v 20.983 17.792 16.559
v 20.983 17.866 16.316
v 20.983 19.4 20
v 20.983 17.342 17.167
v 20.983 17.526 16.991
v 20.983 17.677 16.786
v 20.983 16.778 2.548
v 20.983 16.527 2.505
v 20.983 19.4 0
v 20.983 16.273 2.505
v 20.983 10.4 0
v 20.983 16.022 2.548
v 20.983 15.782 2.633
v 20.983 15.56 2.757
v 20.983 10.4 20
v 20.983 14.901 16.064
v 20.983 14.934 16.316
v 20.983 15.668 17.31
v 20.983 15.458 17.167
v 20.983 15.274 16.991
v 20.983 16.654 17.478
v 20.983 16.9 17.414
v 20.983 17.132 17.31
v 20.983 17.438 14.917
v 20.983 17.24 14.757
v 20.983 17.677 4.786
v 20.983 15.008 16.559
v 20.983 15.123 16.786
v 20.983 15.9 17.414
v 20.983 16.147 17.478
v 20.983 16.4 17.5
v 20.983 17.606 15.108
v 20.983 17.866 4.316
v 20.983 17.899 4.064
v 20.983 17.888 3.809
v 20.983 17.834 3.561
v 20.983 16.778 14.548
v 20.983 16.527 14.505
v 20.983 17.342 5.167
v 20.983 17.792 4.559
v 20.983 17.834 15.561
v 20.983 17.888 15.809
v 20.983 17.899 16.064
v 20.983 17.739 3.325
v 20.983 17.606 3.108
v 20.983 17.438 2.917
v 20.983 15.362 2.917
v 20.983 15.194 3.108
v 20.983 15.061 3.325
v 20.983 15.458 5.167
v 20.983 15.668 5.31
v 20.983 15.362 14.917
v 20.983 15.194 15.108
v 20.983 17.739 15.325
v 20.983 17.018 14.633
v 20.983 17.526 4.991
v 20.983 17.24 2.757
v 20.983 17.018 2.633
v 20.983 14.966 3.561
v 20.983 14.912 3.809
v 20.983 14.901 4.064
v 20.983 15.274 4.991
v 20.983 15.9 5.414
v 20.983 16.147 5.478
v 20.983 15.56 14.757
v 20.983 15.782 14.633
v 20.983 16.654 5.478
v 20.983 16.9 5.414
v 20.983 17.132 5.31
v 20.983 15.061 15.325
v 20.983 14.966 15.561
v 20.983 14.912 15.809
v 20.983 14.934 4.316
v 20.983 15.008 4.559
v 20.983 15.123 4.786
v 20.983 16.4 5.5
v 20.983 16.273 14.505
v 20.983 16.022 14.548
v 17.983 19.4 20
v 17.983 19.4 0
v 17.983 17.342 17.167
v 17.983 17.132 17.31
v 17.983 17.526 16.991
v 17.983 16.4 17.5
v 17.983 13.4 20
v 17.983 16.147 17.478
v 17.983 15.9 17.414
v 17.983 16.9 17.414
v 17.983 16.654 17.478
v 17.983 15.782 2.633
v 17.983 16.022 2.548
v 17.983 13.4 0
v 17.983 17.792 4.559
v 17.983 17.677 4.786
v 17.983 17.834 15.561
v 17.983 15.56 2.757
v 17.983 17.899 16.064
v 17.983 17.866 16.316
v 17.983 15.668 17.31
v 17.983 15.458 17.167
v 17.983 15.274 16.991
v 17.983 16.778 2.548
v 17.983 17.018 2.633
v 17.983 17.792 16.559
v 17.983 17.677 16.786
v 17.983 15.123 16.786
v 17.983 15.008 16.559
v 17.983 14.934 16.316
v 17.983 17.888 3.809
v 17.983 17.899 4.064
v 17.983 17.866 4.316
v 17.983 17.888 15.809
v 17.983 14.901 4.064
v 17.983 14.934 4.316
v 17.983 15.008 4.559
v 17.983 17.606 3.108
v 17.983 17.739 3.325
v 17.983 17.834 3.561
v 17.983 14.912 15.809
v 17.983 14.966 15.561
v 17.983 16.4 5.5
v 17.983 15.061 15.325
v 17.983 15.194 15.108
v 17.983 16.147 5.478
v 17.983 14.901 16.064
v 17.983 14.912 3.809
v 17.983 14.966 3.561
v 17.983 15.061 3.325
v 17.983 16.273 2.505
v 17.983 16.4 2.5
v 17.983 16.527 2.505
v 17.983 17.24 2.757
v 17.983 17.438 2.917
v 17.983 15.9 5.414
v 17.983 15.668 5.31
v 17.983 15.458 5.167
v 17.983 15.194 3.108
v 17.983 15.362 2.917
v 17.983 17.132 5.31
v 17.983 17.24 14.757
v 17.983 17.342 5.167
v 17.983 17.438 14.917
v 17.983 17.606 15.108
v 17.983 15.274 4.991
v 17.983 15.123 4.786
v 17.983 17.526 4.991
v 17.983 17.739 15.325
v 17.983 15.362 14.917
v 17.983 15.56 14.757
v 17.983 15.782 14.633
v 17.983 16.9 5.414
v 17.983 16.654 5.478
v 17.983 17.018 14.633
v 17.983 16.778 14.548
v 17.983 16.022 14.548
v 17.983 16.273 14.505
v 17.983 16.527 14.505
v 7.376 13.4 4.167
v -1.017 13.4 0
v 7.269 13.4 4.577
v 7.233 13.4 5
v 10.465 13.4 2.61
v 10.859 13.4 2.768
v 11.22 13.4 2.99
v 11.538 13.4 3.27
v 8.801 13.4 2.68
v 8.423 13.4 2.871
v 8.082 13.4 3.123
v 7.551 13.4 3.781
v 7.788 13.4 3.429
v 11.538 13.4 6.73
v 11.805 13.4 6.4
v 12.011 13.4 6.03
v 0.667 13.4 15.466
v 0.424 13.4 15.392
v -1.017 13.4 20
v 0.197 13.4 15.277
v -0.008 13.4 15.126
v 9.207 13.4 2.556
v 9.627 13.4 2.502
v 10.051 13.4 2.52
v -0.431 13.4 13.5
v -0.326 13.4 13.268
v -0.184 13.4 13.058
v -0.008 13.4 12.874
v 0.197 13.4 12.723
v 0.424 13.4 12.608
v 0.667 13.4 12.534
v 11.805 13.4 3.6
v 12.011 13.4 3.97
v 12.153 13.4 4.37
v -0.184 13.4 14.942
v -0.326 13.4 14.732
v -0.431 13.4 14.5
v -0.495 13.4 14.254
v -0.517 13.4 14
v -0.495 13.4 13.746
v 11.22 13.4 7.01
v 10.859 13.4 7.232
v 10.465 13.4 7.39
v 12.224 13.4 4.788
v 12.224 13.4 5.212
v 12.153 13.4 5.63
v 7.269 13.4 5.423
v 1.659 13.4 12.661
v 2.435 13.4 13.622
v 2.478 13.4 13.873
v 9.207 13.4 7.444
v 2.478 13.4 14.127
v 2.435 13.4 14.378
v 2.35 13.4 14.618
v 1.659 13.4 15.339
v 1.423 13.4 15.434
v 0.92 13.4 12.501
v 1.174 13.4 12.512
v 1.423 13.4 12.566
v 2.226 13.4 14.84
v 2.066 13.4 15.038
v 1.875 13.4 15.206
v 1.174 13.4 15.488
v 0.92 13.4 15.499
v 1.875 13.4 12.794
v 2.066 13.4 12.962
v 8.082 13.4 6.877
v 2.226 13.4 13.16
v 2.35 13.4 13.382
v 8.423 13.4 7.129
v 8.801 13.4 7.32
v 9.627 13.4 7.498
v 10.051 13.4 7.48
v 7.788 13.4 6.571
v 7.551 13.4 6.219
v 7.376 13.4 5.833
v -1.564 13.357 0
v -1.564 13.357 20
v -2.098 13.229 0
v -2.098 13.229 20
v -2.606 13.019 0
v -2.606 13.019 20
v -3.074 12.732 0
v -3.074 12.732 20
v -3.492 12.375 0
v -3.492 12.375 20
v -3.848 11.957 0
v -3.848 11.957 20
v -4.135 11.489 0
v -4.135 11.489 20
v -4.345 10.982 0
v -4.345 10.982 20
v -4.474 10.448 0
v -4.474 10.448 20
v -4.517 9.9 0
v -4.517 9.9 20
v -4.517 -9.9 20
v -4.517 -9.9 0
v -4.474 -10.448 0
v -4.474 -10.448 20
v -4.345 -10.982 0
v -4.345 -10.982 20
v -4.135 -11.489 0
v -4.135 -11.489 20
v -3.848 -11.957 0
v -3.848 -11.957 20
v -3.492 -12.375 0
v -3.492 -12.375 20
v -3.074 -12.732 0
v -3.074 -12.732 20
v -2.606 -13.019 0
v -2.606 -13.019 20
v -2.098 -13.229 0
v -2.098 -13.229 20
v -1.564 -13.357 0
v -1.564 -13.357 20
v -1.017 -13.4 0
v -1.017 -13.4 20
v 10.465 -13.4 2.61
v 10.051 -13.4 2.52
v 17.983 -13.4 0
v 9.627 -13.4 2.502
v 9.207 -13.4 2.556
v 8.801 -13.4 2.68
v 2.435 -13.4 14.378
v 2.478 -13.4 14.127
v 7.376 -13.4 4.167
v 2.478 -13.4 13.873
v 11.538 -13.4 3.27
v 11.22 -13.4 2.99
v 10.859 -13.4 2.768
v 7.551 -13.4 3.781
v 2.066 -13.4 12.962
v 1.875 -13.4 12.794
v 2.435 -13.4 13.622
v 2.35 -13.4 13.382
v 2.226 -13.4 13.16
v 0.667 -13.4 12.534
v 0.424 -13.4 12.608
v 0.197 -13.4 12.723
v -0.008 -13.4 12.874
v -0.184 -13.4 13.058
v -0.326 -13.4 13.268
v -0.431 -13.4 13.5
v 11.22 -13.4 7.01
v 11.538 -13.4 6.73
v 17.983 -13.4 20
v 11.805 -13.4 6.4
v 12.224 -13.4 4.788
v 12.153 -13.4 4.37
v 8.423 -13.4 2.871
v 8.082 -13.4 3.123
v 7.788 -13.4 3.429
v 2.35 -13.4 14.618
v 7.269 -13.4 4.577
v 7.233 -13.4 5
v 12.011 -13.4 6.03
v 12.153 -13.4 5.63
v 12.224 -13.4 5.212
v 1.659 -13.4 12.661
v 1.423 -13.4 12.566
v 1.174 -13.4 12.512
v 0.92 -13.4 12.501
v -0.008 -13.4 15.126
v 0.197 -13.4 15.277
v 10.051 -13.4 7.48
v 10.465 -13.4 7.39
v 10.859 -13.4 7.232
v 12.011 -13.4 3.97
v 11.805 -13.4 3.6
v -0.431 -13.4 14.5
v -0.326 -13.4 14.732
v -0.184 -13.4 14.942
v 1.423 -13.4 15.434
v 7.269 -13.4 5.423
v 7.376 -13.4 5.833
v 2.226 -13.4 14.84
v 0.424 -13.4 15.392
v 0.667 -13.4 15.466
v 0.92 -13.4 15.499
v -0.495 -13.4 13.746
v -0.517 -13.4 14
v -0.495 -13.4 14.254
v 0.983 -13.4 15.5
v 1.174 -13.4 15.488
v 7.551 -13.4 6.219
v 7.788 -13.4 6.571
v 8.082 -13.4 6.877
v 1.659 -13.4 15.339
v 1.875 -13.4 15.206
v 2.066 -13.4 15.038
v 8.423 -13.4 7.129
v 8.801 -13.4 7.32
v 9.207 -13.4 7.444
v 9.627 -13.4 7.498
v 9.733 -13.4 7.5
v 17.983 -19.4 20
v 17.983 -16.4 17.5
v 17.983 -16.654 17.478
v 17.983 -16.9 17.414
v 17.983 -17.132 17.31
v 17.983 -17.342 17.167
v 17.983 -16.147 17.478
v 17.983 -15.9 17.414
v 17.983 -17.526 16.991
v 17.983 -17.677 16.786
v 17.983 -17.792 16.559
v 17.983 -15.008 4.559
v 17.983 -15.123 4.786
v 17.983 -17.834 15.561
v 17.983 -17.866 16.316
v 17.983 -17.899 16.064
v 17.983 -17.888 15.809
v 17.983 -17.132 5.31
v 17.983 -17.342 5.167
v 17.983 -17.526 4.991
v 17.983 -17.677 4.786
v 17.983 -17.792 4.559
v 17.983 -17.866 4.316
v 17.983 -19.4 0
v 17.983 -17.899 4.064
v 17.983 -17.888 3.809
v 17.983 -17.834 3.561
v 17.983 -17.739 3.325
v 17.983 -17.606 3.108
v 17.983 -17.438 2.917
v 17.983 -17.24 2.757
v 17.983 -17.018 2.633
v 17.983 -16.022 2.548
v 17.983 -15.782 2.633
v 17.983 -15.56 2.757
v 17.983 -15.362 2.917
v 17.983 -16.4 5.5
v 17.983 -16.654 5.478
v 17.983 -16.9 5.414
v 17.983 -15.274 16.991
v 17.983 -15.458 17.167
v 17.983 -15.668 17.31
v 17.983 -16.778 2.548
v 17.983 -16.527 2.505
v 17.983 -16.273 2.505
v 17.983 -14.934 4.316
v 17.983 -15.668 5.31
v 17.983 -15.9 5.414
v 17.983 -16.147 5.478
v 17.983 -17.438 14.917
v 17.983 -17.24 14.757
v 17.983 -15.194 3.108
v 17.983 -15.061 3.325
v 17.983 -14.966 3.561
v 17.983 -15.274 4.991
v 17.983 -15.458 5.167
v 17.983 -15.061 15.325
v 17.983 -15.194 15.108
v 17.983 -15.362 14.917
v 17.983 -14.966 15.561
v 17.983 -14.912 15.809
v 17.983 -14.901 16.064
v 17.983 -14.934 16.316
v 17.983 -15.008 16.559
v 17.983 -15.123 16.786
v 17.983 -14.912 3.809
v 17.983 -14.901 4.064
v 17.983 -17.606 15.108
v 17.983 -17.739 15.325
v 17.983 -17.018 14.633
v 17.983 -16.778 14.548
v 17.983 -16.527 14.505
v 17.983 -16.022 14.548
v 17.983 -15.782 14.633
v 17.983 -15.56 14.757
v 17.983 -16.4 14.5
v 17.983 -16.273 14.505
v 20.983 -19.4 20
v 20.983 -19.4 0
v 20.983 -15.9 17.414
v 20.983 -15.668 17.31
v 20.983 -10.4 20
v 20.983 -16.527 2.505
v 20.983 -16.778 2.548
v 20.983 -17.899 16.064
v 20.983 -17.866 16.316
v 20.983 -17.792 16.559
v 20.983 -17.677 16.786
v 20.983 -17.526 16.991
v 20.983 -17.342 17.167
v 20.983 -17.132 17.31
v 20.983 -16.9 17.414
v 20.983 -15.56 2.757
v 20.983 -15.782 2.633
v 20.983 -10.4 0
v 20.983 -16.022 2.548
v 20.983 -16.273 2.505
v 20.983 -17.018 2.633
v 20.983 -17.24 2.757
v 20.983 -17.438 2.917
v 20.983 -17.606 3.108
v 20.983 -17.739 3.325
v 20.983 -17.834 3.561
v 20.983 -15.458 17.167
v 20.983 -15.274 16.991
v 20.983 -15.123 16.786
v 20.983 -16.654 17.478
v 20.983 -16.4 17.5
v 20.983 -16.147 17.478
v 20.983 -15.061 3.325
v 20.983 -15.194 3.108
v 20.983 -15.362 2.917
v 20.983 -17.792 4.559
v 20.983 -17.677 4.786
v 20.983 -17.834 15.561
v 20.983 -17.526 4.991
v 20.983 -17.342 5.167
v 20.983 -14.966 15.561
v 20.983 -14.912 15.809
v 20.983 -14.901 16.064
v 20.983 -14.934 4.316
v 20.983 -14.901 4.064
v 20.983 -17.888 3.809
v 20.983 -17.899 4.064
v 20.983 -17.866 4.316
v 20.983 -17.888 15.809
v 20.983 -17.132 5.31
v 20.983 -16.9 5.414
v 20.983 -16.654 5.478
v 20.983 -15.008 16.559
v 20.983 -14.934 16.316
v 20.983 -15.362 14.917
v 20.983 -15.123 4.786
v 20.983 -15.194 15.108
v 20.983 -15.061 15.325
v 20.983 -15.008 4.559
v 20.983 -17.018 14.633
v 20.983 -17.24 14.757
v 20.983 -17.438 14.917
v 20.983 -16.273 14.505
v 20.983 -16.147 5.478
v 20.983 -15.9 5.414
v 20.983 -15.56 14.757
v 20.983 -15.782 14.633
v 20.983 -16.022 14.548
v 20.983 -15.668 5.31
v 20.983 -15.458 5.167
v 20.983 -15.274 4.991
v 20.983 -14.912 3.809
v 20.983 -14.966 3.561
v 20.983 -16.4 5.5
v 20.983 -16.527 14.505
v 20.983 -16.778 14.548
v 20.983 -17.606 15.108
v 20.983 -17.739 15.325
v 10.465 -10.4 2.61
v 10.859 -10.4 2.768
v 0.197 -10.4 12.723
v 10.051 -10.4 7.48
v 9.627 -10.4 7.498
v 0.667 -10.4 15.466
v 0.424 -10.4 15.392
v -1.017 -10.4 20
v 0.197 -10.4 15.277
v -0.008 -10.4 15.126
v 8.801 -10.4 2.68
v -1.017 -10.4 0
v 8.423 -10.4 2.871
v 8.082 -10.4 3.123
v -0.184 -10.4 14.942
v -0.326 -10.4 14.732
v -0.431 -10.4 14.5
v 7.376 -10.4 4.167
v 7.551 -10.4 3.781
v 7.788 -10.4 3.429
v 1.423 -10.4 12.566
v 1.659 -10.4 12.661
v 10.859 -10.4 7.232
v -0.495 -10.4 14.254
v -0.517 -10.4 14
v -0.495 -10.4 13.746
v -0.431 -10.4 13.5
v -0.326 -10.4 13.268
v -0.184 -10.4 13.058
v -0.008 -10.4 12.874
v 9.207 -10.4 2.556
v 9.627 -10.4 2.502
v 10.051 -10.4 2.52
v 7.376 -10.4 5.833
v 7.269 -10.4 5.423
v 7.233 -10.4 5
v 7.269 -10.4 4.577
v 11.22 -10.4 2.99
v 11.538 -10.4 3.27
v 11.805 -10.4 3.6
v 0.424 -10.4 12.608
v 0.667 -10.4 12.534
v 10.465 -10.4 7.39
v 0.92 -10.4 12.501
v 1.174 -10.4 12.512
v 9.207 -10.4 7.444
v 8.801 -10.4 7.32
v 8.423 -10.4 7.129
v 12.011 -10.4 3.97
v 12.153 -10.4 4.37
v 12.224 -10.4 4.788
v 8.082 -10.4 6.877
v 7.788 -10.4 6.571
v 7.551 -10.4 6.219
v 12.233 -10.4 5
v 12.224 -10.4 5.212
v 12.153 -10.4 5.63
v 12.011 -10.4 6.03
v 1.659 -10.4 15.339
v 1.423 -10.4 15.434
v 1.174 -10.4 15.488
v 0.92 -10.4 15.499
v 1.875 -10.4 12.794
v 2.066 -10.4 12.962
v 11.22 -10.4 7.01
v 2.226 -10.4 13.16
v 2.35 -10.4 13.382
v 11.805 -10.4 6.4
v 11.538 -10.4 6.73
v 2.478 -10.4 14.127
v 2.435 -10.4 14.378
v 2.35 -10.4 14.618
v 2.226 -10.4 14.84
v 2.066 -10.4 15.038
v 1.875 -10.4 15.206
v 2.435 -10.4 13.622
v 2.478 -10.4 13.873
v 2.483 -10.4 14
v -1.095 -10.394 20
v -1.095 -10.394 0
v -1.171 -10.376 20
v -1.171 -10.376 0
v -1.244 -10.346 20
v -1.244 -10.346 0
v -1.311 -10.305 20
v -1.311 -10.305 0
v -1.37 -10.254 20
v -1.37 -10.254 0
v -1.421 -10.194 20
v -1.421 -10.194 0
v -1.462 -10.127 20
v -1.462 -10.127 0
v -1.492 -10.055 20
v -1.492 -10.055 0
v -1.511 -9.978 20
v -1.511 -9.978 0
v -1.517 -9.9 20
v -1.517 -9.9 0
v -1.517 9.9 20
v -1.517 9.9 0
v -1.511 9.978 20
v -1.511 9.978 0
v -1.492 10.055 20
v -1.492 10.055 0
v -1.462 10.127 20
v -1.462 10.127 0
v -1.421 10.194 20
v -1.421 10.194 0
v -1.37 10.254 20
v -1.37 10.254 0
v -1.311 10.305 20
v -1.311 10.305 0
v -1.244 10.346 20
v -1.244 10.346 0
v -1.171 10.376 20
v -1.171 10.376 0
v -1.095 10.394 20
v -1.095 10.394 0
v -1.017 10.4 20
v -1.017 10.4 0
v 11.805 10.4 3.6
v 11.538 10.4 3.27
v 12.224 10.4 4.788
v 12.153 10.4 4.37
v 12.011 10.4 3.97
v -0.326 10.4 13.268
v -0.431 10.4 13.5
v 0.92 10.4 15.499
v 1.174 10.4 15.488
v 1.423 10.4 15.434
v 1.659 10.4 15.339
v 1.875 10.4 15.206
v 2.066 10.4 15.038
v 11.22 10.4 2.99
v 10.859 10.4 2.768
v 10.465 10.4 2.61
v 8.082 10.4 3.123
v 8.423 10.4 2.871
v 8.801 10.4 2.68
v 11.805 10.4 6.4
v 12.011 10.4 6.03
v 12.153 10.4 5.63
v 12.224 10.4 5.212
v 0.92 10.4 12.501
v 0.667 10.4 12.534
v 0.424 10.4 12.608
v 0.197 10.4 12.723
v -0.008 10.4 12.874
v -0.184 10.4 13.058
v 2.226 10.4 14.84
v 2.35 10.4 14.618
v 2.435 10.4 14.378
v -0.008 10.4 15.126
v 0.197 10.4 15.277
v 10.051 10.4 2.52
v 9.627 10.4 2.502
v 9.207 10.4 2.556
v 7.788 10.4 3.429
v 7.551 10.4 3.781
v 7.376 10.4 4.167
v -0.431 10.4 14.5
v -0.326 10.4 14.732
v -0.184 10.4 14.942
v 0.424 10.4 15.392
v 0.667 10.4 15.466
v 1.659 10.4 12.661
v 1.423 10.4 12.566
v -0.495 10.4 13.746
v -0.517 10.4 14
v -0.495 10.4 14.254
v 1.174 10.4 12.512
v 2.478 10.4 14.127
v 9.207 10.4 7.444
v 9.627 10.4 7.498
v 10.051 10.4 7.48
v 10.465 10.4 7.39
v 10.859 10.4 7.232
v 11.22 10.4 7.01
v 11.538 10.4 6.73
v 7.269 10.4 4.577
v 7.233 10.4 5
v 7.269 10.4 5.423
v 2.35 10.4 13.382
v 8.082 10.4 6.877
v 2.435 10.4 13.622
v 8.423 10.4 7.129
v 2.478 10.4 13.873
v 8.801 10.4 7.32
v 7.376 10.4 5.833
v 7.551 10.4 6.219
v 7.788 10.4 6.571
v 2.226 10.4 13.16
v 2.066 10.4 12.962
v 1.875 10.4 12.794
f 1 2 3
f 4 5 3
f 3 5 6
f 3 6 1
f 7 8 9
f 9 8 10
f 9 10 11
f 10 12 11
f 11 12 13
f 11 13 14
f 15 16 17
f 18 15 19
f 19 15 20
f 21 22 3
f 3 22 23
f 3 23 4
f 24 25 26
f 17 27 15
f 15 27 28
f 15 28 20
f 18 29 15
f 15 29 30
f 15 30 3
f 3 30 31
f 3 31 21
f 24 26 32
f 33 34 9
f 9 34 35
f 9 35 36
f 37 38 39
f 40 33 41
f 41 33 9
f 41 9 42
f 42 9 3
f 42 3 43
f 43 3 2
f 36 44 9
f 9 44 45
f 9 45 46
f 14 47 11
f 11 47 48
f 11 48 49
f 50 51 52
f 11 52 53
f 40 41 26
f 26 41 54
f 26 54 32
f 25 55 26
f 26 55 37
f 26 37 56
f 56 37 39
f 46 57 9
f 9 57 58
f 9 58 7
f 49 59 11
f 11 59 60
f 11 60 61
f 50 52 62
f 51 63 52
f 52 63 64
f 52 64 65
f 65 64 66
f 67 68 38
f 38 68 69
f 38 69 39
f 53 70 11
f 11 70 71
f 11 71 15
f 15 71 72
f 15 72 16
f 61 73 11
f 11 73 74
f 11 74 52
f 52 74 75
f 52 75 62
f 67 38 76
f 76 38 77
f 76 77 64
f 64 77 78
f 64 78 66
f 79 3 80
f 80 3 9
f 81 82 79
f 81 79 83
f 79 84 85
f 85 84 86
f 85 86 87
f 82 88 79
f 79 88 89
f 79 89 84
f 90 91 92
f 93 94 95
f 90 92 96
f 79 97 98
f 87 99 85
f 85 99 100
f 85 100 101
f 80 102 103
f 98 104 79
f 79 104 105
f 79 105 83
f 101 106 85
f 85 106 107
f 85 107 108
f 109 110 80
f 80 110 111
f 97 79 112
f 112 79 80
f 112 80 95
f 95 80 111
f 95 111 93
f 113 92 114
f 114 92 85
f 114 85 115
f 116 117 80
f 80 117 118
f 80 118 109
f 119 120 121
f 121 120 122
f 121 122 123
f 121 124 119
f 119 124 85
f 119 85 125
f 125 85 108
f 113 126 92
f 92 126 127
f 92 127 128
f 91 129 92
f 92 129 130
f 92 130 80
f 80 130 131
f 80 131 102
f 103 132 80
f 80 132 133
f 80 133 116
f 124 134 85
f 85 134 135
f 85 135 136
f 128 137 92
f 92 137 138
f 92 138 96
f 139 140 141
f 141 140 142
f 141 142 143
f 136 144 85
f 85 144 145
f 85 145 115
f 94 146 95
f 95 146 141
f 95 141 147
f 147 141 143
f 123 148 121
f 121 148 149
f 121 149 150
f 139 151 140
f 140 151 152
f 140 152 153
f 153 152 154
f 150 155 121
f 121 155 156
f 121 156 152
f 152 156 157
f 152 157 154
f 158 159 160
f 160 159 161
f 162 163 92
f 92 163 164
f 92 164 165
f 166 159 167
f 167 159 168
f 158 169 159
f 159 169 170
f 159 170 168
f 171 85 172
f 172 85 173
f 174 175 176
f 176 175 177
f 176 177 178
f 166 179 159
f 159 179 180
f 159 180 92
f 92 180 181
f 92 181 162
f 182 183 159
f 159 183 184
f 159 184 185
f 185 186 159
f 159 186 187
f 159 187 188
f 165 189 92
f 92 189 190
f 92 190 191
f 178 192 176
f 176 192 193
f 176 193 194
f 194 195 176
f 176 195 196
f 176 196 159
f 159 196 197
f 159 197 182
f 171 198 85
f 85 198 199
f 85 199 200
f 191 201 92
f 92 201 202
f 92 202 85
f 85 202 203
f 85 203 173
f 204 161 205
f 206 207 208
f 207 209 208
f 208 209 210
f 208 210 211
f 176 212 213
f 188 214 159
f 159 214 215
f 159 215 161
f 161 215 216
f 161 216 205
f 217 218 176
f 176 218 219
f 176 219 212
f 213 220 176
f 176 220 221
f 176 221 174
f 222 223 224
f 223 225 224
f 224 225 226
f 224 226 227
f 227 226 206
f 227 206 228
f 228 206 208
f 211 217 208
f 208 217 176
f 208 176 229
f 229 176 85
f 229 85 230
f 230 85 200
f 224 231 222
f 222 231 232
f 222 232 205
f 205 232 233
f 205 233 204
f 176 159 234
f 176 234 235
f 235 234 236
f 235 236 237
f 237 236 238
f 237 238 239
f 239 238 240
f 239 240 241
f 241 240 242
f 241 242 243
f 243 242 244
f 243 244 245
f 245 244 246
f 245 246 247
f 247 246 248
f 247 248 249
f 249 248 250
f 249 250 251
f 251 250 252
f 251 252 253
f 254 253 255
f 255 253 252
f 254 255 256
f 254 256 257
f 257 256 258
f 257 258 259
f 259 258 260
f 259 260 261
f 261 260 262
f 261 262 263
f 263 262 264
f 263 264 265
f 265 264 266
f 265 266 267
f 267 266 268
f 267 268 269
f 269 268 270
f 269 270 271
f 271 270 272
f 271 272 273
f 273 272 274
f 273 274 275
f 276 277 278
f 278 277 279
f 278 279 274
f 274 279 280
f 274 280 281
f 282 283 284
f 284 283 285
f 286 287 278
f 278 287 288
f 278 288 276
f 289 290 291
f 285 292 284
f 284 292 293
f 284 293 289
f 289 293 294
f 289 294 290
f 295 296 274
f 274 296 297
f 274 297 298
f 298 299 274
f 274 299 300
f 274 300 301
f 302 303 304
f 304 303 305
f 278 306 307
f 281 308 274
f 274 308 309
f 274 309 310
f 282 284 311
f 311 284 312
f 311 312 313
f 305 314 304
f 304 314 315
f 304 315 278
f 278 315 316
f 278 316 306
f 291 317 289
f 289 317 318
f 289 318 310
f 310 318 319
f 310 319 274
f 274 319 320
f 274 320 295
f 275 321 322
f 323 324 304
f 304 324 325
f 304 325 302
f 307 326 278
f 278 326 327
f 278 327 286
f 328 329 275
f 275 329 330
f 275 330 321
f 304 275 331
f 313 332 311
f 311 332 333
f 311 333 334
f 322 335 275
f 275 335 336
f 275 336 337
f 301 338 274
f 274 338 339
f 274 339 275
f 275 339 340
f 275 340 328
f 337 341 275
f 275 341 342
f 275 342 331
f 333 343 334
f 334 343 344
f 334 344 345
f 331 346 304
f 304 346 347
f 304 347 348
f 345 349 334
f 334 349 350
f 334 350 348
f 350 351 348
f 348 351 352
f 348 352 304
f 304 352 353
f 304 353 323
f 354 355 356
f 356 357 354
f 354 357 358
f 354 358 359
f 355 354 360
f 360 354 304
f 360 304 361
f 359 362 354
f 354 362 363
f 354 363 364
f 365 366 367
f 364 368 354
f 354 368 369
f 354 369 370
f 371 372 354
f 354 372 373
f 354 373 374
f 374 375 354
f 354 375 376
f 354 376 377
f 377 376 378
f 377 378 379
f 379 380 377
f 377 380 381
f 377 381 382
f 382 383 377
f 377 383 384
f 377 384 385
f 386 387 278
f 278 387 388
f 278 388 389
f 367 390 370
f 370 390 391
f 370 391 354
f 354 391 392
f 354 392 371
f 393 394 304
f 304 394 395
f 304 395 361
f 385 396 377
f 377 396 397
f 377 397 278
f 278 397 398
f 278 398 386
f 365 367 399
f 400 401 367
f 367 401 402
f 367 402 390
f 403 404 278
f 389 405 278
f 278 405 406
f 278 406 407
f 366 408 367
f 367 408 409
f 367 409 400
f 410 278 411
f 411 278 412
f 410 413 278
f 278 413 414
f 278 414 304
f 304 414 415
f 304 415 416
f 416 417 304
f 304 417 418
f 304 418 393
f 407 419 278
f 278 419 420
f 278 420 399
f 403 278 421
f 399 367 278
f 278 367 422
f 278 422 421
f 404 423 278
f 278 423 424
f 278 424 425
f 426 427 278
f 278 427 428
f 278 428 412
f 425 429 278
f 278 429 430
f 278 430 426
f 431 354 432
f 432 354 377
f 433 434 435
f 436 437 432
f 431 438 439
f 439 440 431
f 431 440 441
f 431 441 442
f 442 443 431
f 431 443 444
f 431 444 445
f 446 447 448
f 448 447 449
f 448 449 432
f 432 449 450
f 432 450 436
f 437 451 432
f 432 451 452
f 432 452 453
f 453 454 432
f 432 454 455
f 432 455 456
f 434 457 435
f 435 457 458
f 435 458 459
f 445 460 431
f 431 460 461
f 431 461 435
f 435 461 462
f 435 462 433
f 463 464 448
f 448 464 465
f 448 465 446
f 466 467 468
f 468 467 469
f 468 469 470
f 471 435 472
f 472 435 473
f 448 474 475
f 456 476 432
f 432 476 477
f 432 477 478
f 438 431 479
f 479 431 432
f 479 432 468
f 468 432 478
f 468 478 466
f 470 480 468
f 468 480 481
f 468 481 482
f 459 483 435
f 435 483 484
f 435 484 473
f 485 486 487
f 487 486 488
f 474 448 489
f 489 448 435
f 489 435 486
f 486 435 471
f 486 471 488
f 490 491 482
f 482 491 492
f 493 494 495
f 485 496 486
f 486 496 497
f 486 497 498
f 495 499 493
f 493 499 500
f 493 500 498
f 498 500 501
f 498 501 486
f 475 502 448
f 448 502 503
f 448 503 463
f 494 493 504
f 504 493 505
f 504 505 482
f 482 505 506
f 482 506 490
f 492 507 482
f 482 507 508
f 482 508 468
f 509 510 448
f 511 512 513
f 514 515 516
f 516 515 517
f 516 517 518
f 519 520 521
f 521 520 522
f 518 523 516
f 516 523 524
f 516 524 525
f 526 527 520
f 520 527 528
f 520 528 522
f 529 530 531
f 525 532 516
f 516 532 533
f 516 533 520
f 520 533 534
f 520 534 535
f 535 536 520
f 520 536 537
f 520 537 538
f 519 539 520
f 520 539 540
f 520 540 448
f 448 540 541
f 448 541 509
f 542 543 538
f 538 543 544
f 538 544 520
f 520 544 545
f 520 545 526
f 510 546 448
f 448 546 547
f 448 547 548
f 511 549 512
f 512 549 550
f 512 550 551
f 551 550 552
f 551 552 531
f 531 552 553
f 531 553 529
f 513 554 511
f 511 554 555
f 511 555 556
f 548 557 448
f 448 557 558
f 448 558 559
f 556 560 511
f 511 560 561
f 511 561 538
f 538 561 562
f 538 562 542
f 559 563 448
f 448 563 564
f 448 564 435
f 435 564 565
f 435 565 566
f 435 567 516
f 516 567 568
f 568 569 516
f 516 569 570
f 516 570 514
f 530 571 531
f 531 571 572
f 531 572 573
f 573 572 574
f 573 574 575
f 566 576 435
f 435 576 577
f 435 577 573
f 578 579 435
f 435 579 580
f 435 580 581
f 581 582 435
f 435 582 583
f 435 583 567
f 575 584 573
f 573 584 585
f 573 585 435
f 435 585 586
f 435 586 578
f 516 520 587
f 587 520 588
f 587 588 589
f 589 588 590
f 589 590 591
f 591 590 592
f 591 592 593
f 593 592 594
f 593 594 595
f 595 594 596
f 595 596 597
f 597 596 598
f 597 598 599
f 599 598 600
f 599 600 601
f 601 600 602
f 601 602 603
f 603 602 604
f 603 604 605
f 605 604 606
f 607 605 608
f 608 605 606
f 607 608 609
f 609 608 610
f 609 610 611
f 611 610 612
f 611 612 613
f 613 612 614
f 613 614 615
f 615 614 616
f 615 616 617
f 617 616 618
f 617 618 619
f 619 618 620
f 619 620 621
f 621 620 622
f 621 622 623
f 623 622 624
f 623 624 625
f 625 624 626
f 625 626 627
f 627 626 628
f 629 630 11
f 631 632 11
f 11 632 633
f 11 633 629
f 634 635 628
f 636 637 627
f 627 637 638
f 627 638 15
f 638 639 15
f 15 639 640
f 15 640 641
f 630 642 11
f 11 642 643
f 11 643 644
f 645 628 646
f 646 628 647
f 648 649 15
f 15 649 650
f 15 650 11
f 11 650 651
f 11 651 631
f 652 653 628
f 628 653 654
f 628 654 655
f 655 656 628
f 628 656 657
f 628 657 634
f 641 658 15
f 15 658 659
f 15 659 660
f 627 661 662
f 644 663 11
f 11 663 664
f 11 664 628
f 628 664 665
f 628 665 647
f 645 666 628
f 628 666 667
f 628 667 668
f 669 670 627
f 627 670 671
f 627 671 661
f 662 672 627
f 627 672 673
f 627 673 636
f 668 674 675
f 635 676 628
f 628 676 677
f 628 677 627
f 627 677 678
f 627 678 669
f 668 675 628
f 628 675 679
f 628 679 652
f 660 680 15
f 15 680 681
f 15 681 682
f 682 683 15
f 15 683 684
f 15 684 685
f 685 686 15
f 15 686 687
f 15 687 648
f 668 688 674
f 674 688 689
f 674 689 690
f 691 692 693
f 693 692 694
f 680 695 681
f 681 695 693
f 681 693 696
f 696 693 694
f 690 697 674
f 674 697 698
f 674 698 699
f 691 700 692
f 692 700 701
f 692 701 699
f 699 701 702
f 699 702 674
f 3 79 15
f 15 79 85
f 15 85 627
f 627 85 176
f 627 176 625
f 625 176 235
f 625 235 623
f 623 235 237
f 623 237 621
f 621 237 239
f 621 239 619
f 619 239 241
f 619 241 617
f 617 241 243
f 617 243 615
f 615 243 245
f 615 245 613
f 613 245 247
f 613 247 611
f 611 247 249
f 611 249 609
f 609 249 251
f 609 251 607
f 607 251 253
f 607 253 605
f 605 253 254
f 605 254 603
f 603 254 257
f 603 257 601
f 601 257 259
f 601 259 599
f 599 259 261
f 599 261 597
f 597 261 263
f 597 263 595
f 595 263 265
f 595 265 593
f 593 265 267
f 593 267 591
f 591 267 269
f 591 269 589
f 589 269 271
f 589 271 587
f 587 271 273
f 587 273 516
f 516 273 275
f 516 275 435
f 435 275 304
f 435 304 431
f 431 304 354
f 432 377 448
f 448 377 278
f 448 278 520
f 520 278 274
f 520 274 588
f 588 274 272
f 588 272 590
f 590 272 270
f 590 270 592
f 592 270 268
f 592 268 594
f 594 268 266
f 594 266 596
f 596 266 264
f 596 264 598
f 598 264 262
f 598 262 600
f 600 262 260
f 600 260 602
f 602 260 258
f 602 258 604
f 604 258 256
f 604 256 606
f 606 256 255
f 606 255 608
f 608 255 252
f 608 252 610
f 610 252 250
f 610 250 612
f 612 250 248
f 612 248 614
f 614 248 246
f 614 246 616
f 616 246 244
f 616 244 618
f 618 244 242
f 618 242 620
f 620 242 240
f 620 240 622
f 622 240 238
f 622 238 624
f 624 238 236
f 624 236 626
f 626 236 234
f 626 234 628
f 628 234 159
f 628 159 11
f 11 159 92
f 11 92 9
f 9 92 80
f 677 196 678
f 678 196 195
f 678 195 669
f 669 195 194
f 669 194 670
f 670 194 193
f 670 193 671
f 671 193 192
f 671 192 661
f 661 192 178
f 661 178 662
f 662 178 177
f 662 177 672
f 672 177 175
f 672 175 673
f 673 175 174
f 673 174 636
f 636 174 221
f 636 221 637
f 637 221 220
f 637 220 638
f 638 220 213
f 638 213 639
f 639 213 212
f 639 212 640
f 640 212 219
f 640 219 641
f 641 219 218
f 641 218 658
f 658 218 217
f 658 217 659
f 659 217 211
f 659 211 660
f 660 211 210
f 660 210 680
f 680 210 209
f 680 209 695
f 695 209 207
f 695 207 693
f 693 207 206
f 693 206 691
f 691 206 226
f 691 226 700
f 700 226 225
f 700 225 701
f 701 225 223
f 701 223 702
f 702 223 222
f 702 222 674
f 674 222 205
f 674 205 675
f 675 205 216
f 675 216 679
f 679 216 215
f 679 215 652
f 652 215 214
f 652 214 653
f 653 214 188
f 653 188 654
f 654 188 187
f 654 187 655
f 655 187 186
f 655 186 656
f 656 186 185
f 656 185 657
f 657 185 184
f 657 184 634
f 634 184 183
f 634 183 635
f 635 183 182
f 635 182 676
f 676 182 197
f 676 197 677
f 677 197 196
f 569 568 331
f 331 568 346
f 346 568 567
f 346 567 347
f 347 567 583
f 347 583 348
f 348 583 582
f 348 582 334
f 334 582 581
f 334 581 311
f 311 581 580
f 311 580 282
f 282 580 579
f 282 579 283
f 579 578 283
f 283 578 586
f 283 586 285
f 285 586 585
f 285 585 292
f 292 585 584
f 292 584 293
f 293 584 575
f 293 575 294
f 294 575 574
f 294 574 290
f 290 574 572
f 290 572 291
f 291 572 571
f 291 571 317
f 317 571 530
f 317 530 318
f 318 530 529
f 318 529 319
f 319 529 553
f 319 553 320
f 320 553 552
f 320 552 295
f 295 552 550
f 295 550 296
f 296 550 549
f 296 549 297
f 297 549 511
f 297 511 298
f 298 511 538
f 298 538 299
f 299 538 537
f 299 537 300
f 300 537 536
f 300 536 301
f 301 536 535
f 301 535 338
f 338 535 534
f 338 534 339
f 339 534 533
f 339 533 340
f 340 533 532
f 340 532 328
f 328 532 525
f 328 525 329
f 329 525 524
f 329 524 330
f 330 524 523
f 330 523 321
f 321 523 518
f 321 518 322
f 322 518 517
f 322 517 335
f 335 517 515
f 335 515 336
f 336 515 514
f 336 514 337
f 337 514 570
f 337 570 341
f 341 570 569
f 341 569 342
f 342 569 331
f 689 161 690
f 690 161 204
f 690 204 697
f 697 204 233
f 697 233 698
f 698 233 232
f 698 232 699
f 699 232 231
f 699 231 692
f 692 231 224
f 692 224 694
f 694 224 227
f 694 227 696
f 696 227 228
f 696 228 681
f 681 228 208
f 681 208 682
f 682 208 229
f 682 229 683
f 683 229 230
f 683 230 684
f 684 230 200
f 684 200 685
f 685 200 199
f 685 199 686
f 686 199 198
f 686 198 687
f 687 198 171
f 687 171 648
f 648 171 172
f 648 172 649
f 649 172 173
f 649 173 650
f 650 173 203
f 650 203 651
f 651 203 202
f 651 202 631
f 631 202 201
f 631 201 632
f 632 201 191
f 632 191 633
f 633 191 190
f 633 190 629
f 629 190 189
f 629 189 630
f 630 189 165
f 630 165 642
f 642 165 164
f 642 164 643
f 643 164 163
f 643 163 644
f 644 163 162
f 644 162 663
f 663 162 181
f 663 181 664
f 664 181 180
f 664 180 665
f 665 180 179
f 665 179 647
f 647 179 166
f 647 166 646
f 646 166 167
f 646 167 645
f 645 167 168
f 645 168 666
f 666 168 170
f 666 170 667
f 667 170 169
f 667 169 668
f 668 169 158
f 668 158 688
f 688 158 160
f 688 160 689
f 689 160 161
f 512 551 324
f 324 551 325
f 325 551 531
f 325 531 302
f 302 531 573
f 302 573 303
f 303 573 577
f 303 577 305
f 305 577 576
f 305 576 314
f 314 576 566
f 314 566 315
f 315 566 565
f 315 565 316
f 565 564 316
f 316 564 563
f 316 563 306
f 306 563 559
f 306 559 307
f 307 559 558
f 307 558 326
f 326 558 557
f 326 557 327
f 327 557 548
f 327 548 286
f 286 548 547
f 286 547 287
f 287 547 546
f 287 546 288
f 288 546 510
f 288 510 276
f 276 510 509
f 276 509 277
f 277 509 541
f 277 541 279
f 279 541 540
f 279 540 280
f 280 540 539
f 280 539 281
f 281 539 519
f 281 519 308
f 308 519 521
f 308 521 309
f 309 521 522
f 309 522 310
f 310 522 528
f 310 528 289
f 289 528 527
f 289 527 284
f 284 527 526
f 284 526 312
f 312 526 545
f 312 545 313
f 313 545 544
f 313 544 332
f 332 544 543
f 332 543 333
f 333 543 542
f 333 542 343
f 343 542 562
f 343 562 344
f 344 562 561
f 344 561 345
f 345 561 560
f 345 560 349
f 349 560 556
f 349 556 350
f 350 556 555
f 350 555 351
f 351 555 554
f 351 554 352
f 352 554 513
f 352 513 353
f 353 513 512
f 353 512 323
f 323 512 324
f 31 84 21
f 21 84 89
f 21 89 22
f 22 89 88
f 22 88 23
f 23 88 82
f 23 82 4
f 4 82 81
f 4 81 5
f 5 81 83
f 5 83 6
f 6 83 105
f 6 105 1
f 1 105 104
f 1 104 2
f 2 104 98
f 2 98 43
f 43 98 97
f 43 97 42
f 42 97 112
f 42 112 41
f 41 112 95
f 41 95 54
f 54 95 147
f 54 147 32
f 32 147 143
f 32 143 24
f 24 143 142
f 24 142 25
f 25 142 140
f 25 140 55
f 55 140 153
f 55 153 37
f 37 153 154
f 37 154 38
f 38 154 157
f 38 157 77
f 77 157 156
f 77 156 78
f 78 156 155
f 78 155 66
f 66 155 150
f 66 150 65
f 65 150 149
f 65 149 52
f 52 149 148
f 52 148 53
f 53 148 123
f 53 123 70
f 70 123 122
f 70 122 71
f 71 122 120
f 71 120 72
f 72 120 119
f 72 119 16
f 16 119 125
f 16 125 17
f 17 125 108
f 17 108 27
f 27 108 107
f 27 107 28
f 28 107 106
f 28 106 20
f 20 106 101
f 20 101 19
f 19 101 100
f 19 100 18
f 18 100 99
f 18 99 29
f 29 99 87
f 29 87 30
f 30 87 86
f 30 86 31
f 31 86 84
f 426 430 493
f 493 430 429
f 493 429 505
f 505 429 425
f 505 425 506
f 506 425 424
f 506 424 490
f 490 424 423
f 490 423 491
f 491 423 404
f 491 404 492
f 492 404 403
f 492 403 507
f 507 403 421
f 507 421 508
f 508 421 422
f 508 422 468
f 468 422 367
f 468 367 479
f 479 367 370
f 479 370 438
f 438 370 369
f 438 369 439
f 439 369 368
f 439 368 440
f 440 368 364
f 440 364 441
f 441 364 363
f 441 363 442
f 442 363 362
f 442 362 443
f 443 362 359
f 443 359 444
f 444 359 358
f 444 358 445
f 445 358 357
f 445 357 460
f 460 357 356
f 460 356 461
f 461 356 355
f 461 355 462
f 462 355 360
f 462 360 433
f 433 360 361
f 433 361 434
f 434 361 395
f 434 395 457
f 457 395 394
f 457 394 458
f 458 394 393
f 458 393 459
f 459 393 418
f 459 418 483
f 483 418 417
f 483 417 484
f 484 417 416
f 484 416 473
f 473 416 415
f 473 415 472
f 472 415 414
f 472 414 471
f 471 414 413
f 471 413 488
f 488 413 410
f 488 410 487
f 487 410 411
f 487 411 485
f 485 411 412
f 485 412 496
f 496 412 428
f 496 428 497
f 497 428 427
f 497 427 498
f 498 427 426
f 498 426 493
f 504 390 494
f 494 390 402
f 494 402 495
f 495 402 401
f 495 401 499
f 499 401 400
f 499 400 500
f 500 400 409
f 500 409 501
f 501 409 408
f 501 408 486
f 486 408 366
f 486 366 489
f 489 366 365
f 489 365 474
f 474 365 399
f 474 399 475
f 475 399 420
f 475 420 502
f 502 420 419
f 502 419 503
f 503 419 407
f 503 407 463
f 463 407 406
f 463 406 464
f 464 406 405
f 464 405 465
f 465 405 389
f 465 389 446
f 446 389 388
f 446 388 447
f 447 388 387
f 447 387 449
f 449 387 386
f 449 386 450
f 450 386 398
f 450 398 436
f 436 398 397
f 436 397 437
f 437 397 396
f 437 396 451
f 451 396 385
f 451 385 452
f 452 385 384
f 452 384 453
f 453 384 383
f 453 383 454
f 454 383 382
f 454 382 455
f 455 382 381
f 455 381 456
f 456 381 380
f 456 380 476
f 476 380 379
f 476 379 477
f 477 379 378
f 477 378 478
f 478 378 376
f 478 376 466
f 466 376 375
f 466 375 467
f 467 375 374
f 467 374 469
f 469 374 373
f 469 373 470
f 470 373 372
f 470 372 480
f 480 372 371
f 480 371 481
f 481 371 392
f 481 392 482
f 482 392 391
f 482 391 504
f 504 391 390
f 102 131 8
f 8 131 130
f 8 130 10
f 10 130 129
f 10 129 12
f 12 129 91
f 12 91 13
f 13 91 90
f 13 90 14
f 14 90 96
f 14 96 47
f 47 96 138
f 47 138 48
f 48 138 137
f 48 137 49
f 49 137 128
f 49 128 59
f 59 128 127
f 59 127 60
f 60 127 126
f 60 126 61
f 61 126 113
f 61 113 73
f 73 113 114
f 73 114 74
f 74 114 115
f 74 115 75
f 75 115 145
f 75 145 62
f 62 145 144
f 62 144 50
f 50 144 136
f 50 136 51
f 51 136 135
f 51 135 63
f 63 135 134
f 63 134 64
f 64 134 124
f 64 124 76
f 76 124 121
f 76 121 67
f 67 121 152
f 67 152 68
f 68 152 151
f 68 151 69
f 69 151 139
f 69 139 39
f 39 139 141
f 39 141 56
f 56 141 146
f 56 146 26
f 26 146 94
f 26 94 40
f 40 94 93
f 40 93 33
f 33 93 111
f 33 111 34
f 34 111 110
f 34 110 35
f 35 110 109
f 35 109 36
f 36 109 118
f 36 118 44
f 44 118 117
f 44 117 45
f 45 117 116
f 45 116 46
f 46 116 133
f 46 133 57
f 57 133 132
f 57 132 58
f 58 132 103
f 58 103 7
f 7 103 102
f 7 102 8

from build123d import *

# Parameters (mm, degrees)
BOSS_EXTRUDE1_DEPTH = 20
SKETCH2_R           = 1.5
SKETCH2_R_2         = 2.5
CUT_EXTRUDE1_DEPTH  = 27
SKETCH3_R           = 1.5
CUT_EXTRUDE2_DEPTH  = 27


with BuildPart() as part:
    # Sketch1 → Boss-Extrude1 (new body)
    with BuildSketch(Plane.XY):
        with BuildLine():
            Line((-1.016707819, -10.4), (20.983292181, -10.4))
            Line((20.983292181, -10.4), (20.983292181, -19.4))
            Line((20.983292181, -19.4), (17.983292181, -19.4))
            Line((17.983292181, -19.4), (17.983292181, -13.4))
            Line((17.983292181, -13.4), (-1.016707819, -13.4))
            ThreePointArc((-1.016707819, -13.4), (-3.491581553, -12.374873734), (-4.516707819, -9.9))
            Line((-4.516707819, -9.9), (-4.516707819, 9.9))
            ThreePointArc((-4.516707819, 9.9), (-3.491581553, 12.374873734), (-1.016707819, 13.4))
            Line((-1.016707819, 13.4), (17.983292181, 13.4))
            Line((17.983292181, 13.4), (17.983292181, 19.4))
            Line((17.983292181, 19.4), (20.983292181, 19.4))
            Line((20.983292181, 19.4), (20.983292181, 10.4))
            Line((20.983292181, 10.4), (-1.016707819, 10.4))
            ThreePointArc((-1.016707819, 10.4), (-1.370261209, 10.253553391), (-1.516707819, 9.9))
            Line((-1.516707819, 9.9), (-1.516707819, -9.9))
            ThreePointArc((-1.516707819, -9.9), (-1.370261209, -10.253553391), (-1.016707819, -10.4))
        make_face()
    extrude(amount=BOSS_EXTRUDE1_DEPTH)

    # Sketch2 → Cut-Extrude1 (cut)
    with BuildSketch(Plane(origin=(0, 13.4, 0), x_dir=(1, 0, 0), z_dir=(0, 1, 0))):
        with Locations((0.983292181, -14)):
            Circle(SKETCH2_R)
        with Locations((9.733292181, -5)):
            Circle(SKETCH2_R_2)
    extrude(amount=-CUT_EXTRUDE1_DEPTH, mode=Mode.SUBTRACT)

    # Sketch3 → Cut-Extrude2 (cut)
    with BuildSketch(Plane.ZY.offset(-17.983292181)):
        with Locations((16, 16.4)):
            Circle(SKETCH3_R)
        with Locations((4, 16.4)):
            Circle(SKETCH3_R)
        with Locations((4, -16.4)):
            Circle(SKETCH3_R)
        with Locations((16, -16.4)):
            Circle(SKETCH3_R)
    extrude(amount=-CUT_EXTRUDE2_DEPTH, mode=Mode.SUBTRACT)


solid = part.part
